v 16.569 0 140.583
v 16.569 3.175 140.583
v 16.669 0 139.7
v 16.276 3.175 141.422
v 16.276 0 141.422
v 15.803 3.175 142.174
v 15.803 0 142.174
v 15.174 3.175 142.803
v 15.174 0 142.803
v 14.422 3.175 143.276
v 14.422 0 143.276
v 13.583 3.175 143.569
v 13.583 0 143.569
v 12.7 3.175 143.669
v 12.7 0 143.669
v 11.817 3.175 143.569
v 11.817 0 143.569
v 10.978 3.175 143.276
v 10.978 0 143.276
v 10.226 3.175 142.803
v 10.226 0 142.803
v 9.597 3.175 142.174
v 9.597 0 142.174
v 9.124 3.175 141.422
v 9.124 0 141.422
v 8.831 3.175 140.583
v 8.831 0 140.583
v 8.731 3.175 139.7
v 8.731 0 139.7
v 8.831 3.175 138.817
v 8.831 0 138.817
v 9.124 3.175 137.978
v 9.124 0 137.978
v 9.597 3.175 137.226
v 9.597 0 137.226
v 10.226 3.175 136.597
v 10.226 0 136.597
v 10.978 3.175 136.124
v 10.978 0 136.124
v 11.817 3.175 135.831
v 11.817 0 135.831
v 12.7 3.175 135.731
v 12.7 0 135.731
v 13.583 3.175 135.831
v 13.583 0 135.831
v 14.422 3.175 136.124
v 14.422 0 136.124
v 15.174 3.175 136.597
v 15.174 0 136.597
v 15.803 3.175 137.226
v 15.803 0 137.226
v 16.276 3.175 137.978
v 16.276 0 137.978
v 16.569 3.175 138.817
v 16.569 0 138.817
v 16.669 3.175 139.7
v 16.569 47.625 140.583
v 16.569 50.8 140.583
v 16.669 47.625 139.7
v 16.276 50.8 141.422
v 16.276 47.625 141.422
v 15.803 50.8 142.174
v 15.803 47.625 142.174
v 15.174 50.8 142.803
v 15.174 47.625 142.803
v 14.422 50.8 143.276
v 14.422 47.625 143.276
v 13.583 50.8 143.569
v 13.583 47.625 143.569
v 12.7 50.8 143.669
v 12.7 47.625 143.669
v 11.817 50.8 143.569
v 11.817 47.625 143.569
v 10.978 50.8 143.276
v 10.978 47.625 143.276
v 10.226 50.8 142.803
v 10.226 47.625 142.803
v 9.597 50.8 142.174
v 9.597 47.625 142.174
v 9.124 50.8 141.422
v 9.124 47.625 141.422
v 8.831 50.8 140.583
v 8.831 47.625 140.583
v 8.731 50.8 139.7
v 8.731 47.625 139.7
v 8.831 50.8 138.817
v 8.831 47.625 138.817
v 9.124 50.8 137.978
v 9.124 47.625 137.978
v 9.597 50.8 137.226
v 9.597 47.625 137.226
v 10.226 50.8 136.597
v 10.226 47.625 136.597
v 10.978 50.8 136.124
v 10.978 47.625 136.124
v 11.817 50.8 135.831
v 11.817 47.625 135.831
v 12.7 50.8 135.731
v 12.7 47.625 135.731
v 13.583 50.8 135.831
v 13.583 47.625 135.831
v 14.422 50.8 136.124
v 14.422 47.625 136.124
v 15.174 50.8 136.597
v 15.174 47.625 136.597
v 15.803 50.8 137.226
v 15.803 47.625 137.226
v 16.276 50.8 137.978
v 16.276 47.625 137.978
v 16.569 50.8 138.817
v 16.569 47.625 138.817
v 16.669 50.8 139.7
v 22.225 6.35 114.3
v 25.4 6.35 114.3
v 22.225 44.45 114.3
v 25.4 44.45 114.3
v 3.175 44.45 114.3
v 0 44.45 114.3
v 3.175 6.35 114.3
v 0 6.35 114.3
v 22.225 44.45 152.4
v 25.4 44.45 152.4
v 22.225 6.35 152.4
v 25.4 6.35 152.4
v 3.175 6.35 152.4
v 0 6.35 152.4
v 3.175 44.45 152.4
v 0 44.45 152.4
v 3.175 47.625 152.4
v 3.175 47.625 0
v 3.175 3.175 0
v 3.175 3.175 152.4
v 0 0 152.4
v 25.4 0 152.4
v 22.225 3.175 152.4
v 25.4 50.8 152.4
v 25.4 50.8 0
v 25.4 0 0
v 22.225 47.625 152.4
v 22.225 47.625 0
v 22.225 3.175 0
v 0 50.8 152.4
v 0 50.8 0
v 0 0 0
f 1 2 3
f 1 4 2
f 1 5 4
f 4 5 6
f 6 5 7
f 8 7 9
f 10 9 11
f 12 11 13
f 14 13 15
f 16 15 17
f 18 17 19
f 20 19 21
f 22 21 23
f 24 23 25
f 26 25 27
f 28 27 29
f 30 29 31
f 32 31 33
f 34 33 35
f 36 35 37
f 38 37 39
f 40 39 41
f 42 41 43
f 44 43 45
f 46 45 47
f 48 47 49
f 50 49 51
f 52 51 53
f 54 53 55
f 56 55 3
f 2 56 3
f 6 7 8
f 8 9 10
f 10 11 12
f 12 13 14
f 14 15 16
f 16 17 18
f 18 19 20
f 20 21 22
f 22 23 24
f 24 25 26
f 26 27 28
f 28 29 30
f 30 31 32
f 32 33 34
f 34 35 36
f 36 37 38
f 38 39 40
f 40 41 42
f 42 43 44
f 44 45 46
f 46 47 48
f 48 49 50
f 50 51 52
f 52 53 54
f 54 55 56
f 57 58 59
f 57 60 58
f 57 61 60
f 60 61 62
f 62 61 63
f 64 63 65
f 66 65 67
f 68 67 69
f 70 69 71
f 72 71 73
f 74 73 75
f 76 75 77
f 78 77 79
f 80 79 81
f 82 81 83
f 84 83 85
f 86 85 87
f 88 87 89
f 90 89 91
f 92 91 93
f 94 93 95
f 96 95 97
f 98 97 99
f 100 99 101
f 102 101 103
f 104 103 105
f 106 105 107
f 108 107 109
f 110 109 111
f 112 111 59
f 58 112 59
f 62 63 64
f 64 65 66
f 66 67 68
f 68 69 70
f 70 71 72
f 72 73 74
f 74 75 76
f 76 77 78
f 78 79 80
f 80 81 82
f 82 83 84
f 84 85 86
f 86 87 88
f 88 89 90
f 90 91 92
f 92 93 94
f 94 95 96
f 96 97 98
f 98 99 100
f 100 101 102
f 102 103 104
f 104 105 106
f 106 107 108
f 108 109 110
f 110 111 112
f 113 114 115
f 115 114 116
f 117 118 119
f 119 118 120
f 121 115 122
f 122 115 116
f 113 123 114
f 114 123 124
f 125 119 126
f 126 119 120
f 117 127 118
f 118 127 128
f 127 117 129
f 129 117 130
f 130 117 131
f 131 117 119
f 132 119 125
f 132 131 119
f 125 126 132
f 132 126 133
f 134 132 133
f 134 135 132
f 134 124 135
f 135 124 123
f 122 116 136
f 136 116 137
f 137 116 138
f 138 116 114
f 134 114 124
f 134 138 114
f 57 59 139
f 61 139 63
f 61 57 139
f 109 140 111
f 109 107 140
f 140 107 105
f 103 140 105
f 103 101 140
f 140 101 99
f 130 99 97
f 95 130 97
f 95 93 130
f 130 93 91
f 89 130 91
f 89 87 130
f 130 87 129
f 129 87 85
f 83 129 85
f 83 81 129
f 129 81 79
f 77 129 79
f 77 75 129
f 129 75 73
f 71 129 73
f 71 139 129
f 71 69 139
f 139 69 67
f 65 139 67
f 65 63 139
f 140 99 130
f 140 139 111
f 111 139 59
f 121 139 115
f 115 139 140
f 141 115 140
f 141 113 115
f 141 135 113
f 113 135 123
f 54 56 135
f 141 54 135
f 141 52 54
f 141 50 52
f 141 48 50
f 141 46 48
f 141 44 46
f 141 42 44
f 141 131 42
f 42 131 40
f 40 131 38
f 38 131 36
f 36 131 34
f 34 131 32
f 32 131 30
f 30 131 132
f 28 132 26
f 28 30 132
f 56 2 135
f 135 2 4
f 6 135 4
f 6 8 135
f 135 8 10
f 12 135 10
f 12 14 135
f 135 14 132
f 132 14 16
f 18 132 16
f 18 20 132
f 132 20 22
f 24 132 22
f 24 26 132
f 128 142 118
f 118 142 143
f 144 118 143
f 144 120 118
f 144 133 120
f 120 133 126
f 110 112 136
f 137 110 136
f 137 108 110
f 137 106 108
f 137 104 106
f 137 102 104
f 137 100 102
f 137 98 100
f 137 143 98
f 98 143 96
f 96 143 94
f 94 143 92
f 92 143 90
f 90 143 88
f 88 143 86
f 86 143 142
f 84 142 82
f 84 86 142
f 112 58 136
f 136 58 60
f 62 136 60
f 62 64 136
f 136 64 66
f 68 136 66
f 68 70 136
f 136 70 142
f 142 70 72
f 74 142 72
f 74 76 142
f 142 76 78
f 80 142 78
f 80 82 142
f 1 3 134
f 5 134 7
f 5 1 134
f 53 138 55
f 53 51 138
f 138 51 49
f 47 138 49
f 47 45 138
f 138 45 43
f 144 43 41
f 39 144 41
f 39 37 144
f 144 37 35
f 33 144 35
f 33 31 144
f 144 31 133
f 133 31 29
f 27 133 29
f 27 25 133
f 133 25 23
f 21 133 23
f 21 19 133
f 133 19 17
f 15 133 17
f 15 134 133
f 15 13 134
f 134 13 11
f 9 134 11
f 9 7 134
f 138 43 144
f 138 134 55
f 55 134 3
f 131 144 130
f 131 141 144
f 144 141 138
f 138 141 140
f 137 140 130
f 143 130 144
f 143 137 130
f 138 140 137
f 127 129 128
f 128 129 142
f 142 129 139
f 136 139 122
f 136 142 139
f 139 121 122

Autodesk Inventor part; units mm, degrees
ref_plane "YZ Plane" through (0, 0, 0) normal (1, 0, 0) x (0, 1, 0)
ref_plane "XZ Plane" through (0, 0, 0) normal (0, 1, 0) x (-1, 0, 0)
ref_plane "XY Plane" through (0, 0, 0) normal (0, 0, 1) x (1, 0, 0)
sketch "Sketch1" plane through (0, 0, 0) normal (0, 0, 1) x (1, 0, 0)
  line L0 (0, 0) -> (25.4, 0)
  line L1 (25.4, 0) -> (25.4, 50.8)
  line L2 (25.4, 50.8) -> (0, 50.8)
  line L3 (0, 50.8) -> (0, 0)
  dimension "d0" = 25.4
  dimension "d1" = 50.8
extrude "Extrusion1" add sketch "Sketch1" along normal blind 152.4
shell "Shell1" thickness 3.175 removed faces 2 at (8.4667, 33.8667, 0) at (8.4667, 33.8667, 152.4)
sketch "Sketch4" plane through (25.4, 0, 0) normal (1, 0, 0) x (0, 0, -1)
  line L0 (-152.4, 50.8) -> (-152.4, 0) projected
  line L1 (0, 0) -> (-152.4, 0) projected
  line L2 (0, 50.8) -> (-152.4, 50.8) projected
  line L3 (-152.4, 44.45) -> (-114.3, 44.45)
  line L4 (-114.3, 44.45) -> (-114.3, 6.35)
  line L5 (-114.3, 6.35) -> (-152.4, 6.35)
  line L6 (-152.4, 6.35) -> (-152.4, 44.45)
  dimension "d15" = 6.35
  dimension "d16" = 6.35
  dimension "d17" = 38.1
extrude "Extrusion4" cut sketch "Sketch4" against normal through all
sketch "Sketch5" plane through (0, 50.8, 0) normal (0, 1, 0) x (1, 0, 0)
  line L0 (0, -152.4) -> (25.4, -152.4) projected
  line L1 (25.4, 0) -> (25.4, -152.4) projected
  circle A0 centre (12.7, -139.7) radius 3.9688
  dimension "d20" = 7.9375
  dimension "d21" = 12.7
  dimension "d22" = 12.7
extrude "Extrusion5" cut sketch "Sketch5" against normal through all
properties part number "Frame_LowerRollerMount" material "Aluminum-6061"
